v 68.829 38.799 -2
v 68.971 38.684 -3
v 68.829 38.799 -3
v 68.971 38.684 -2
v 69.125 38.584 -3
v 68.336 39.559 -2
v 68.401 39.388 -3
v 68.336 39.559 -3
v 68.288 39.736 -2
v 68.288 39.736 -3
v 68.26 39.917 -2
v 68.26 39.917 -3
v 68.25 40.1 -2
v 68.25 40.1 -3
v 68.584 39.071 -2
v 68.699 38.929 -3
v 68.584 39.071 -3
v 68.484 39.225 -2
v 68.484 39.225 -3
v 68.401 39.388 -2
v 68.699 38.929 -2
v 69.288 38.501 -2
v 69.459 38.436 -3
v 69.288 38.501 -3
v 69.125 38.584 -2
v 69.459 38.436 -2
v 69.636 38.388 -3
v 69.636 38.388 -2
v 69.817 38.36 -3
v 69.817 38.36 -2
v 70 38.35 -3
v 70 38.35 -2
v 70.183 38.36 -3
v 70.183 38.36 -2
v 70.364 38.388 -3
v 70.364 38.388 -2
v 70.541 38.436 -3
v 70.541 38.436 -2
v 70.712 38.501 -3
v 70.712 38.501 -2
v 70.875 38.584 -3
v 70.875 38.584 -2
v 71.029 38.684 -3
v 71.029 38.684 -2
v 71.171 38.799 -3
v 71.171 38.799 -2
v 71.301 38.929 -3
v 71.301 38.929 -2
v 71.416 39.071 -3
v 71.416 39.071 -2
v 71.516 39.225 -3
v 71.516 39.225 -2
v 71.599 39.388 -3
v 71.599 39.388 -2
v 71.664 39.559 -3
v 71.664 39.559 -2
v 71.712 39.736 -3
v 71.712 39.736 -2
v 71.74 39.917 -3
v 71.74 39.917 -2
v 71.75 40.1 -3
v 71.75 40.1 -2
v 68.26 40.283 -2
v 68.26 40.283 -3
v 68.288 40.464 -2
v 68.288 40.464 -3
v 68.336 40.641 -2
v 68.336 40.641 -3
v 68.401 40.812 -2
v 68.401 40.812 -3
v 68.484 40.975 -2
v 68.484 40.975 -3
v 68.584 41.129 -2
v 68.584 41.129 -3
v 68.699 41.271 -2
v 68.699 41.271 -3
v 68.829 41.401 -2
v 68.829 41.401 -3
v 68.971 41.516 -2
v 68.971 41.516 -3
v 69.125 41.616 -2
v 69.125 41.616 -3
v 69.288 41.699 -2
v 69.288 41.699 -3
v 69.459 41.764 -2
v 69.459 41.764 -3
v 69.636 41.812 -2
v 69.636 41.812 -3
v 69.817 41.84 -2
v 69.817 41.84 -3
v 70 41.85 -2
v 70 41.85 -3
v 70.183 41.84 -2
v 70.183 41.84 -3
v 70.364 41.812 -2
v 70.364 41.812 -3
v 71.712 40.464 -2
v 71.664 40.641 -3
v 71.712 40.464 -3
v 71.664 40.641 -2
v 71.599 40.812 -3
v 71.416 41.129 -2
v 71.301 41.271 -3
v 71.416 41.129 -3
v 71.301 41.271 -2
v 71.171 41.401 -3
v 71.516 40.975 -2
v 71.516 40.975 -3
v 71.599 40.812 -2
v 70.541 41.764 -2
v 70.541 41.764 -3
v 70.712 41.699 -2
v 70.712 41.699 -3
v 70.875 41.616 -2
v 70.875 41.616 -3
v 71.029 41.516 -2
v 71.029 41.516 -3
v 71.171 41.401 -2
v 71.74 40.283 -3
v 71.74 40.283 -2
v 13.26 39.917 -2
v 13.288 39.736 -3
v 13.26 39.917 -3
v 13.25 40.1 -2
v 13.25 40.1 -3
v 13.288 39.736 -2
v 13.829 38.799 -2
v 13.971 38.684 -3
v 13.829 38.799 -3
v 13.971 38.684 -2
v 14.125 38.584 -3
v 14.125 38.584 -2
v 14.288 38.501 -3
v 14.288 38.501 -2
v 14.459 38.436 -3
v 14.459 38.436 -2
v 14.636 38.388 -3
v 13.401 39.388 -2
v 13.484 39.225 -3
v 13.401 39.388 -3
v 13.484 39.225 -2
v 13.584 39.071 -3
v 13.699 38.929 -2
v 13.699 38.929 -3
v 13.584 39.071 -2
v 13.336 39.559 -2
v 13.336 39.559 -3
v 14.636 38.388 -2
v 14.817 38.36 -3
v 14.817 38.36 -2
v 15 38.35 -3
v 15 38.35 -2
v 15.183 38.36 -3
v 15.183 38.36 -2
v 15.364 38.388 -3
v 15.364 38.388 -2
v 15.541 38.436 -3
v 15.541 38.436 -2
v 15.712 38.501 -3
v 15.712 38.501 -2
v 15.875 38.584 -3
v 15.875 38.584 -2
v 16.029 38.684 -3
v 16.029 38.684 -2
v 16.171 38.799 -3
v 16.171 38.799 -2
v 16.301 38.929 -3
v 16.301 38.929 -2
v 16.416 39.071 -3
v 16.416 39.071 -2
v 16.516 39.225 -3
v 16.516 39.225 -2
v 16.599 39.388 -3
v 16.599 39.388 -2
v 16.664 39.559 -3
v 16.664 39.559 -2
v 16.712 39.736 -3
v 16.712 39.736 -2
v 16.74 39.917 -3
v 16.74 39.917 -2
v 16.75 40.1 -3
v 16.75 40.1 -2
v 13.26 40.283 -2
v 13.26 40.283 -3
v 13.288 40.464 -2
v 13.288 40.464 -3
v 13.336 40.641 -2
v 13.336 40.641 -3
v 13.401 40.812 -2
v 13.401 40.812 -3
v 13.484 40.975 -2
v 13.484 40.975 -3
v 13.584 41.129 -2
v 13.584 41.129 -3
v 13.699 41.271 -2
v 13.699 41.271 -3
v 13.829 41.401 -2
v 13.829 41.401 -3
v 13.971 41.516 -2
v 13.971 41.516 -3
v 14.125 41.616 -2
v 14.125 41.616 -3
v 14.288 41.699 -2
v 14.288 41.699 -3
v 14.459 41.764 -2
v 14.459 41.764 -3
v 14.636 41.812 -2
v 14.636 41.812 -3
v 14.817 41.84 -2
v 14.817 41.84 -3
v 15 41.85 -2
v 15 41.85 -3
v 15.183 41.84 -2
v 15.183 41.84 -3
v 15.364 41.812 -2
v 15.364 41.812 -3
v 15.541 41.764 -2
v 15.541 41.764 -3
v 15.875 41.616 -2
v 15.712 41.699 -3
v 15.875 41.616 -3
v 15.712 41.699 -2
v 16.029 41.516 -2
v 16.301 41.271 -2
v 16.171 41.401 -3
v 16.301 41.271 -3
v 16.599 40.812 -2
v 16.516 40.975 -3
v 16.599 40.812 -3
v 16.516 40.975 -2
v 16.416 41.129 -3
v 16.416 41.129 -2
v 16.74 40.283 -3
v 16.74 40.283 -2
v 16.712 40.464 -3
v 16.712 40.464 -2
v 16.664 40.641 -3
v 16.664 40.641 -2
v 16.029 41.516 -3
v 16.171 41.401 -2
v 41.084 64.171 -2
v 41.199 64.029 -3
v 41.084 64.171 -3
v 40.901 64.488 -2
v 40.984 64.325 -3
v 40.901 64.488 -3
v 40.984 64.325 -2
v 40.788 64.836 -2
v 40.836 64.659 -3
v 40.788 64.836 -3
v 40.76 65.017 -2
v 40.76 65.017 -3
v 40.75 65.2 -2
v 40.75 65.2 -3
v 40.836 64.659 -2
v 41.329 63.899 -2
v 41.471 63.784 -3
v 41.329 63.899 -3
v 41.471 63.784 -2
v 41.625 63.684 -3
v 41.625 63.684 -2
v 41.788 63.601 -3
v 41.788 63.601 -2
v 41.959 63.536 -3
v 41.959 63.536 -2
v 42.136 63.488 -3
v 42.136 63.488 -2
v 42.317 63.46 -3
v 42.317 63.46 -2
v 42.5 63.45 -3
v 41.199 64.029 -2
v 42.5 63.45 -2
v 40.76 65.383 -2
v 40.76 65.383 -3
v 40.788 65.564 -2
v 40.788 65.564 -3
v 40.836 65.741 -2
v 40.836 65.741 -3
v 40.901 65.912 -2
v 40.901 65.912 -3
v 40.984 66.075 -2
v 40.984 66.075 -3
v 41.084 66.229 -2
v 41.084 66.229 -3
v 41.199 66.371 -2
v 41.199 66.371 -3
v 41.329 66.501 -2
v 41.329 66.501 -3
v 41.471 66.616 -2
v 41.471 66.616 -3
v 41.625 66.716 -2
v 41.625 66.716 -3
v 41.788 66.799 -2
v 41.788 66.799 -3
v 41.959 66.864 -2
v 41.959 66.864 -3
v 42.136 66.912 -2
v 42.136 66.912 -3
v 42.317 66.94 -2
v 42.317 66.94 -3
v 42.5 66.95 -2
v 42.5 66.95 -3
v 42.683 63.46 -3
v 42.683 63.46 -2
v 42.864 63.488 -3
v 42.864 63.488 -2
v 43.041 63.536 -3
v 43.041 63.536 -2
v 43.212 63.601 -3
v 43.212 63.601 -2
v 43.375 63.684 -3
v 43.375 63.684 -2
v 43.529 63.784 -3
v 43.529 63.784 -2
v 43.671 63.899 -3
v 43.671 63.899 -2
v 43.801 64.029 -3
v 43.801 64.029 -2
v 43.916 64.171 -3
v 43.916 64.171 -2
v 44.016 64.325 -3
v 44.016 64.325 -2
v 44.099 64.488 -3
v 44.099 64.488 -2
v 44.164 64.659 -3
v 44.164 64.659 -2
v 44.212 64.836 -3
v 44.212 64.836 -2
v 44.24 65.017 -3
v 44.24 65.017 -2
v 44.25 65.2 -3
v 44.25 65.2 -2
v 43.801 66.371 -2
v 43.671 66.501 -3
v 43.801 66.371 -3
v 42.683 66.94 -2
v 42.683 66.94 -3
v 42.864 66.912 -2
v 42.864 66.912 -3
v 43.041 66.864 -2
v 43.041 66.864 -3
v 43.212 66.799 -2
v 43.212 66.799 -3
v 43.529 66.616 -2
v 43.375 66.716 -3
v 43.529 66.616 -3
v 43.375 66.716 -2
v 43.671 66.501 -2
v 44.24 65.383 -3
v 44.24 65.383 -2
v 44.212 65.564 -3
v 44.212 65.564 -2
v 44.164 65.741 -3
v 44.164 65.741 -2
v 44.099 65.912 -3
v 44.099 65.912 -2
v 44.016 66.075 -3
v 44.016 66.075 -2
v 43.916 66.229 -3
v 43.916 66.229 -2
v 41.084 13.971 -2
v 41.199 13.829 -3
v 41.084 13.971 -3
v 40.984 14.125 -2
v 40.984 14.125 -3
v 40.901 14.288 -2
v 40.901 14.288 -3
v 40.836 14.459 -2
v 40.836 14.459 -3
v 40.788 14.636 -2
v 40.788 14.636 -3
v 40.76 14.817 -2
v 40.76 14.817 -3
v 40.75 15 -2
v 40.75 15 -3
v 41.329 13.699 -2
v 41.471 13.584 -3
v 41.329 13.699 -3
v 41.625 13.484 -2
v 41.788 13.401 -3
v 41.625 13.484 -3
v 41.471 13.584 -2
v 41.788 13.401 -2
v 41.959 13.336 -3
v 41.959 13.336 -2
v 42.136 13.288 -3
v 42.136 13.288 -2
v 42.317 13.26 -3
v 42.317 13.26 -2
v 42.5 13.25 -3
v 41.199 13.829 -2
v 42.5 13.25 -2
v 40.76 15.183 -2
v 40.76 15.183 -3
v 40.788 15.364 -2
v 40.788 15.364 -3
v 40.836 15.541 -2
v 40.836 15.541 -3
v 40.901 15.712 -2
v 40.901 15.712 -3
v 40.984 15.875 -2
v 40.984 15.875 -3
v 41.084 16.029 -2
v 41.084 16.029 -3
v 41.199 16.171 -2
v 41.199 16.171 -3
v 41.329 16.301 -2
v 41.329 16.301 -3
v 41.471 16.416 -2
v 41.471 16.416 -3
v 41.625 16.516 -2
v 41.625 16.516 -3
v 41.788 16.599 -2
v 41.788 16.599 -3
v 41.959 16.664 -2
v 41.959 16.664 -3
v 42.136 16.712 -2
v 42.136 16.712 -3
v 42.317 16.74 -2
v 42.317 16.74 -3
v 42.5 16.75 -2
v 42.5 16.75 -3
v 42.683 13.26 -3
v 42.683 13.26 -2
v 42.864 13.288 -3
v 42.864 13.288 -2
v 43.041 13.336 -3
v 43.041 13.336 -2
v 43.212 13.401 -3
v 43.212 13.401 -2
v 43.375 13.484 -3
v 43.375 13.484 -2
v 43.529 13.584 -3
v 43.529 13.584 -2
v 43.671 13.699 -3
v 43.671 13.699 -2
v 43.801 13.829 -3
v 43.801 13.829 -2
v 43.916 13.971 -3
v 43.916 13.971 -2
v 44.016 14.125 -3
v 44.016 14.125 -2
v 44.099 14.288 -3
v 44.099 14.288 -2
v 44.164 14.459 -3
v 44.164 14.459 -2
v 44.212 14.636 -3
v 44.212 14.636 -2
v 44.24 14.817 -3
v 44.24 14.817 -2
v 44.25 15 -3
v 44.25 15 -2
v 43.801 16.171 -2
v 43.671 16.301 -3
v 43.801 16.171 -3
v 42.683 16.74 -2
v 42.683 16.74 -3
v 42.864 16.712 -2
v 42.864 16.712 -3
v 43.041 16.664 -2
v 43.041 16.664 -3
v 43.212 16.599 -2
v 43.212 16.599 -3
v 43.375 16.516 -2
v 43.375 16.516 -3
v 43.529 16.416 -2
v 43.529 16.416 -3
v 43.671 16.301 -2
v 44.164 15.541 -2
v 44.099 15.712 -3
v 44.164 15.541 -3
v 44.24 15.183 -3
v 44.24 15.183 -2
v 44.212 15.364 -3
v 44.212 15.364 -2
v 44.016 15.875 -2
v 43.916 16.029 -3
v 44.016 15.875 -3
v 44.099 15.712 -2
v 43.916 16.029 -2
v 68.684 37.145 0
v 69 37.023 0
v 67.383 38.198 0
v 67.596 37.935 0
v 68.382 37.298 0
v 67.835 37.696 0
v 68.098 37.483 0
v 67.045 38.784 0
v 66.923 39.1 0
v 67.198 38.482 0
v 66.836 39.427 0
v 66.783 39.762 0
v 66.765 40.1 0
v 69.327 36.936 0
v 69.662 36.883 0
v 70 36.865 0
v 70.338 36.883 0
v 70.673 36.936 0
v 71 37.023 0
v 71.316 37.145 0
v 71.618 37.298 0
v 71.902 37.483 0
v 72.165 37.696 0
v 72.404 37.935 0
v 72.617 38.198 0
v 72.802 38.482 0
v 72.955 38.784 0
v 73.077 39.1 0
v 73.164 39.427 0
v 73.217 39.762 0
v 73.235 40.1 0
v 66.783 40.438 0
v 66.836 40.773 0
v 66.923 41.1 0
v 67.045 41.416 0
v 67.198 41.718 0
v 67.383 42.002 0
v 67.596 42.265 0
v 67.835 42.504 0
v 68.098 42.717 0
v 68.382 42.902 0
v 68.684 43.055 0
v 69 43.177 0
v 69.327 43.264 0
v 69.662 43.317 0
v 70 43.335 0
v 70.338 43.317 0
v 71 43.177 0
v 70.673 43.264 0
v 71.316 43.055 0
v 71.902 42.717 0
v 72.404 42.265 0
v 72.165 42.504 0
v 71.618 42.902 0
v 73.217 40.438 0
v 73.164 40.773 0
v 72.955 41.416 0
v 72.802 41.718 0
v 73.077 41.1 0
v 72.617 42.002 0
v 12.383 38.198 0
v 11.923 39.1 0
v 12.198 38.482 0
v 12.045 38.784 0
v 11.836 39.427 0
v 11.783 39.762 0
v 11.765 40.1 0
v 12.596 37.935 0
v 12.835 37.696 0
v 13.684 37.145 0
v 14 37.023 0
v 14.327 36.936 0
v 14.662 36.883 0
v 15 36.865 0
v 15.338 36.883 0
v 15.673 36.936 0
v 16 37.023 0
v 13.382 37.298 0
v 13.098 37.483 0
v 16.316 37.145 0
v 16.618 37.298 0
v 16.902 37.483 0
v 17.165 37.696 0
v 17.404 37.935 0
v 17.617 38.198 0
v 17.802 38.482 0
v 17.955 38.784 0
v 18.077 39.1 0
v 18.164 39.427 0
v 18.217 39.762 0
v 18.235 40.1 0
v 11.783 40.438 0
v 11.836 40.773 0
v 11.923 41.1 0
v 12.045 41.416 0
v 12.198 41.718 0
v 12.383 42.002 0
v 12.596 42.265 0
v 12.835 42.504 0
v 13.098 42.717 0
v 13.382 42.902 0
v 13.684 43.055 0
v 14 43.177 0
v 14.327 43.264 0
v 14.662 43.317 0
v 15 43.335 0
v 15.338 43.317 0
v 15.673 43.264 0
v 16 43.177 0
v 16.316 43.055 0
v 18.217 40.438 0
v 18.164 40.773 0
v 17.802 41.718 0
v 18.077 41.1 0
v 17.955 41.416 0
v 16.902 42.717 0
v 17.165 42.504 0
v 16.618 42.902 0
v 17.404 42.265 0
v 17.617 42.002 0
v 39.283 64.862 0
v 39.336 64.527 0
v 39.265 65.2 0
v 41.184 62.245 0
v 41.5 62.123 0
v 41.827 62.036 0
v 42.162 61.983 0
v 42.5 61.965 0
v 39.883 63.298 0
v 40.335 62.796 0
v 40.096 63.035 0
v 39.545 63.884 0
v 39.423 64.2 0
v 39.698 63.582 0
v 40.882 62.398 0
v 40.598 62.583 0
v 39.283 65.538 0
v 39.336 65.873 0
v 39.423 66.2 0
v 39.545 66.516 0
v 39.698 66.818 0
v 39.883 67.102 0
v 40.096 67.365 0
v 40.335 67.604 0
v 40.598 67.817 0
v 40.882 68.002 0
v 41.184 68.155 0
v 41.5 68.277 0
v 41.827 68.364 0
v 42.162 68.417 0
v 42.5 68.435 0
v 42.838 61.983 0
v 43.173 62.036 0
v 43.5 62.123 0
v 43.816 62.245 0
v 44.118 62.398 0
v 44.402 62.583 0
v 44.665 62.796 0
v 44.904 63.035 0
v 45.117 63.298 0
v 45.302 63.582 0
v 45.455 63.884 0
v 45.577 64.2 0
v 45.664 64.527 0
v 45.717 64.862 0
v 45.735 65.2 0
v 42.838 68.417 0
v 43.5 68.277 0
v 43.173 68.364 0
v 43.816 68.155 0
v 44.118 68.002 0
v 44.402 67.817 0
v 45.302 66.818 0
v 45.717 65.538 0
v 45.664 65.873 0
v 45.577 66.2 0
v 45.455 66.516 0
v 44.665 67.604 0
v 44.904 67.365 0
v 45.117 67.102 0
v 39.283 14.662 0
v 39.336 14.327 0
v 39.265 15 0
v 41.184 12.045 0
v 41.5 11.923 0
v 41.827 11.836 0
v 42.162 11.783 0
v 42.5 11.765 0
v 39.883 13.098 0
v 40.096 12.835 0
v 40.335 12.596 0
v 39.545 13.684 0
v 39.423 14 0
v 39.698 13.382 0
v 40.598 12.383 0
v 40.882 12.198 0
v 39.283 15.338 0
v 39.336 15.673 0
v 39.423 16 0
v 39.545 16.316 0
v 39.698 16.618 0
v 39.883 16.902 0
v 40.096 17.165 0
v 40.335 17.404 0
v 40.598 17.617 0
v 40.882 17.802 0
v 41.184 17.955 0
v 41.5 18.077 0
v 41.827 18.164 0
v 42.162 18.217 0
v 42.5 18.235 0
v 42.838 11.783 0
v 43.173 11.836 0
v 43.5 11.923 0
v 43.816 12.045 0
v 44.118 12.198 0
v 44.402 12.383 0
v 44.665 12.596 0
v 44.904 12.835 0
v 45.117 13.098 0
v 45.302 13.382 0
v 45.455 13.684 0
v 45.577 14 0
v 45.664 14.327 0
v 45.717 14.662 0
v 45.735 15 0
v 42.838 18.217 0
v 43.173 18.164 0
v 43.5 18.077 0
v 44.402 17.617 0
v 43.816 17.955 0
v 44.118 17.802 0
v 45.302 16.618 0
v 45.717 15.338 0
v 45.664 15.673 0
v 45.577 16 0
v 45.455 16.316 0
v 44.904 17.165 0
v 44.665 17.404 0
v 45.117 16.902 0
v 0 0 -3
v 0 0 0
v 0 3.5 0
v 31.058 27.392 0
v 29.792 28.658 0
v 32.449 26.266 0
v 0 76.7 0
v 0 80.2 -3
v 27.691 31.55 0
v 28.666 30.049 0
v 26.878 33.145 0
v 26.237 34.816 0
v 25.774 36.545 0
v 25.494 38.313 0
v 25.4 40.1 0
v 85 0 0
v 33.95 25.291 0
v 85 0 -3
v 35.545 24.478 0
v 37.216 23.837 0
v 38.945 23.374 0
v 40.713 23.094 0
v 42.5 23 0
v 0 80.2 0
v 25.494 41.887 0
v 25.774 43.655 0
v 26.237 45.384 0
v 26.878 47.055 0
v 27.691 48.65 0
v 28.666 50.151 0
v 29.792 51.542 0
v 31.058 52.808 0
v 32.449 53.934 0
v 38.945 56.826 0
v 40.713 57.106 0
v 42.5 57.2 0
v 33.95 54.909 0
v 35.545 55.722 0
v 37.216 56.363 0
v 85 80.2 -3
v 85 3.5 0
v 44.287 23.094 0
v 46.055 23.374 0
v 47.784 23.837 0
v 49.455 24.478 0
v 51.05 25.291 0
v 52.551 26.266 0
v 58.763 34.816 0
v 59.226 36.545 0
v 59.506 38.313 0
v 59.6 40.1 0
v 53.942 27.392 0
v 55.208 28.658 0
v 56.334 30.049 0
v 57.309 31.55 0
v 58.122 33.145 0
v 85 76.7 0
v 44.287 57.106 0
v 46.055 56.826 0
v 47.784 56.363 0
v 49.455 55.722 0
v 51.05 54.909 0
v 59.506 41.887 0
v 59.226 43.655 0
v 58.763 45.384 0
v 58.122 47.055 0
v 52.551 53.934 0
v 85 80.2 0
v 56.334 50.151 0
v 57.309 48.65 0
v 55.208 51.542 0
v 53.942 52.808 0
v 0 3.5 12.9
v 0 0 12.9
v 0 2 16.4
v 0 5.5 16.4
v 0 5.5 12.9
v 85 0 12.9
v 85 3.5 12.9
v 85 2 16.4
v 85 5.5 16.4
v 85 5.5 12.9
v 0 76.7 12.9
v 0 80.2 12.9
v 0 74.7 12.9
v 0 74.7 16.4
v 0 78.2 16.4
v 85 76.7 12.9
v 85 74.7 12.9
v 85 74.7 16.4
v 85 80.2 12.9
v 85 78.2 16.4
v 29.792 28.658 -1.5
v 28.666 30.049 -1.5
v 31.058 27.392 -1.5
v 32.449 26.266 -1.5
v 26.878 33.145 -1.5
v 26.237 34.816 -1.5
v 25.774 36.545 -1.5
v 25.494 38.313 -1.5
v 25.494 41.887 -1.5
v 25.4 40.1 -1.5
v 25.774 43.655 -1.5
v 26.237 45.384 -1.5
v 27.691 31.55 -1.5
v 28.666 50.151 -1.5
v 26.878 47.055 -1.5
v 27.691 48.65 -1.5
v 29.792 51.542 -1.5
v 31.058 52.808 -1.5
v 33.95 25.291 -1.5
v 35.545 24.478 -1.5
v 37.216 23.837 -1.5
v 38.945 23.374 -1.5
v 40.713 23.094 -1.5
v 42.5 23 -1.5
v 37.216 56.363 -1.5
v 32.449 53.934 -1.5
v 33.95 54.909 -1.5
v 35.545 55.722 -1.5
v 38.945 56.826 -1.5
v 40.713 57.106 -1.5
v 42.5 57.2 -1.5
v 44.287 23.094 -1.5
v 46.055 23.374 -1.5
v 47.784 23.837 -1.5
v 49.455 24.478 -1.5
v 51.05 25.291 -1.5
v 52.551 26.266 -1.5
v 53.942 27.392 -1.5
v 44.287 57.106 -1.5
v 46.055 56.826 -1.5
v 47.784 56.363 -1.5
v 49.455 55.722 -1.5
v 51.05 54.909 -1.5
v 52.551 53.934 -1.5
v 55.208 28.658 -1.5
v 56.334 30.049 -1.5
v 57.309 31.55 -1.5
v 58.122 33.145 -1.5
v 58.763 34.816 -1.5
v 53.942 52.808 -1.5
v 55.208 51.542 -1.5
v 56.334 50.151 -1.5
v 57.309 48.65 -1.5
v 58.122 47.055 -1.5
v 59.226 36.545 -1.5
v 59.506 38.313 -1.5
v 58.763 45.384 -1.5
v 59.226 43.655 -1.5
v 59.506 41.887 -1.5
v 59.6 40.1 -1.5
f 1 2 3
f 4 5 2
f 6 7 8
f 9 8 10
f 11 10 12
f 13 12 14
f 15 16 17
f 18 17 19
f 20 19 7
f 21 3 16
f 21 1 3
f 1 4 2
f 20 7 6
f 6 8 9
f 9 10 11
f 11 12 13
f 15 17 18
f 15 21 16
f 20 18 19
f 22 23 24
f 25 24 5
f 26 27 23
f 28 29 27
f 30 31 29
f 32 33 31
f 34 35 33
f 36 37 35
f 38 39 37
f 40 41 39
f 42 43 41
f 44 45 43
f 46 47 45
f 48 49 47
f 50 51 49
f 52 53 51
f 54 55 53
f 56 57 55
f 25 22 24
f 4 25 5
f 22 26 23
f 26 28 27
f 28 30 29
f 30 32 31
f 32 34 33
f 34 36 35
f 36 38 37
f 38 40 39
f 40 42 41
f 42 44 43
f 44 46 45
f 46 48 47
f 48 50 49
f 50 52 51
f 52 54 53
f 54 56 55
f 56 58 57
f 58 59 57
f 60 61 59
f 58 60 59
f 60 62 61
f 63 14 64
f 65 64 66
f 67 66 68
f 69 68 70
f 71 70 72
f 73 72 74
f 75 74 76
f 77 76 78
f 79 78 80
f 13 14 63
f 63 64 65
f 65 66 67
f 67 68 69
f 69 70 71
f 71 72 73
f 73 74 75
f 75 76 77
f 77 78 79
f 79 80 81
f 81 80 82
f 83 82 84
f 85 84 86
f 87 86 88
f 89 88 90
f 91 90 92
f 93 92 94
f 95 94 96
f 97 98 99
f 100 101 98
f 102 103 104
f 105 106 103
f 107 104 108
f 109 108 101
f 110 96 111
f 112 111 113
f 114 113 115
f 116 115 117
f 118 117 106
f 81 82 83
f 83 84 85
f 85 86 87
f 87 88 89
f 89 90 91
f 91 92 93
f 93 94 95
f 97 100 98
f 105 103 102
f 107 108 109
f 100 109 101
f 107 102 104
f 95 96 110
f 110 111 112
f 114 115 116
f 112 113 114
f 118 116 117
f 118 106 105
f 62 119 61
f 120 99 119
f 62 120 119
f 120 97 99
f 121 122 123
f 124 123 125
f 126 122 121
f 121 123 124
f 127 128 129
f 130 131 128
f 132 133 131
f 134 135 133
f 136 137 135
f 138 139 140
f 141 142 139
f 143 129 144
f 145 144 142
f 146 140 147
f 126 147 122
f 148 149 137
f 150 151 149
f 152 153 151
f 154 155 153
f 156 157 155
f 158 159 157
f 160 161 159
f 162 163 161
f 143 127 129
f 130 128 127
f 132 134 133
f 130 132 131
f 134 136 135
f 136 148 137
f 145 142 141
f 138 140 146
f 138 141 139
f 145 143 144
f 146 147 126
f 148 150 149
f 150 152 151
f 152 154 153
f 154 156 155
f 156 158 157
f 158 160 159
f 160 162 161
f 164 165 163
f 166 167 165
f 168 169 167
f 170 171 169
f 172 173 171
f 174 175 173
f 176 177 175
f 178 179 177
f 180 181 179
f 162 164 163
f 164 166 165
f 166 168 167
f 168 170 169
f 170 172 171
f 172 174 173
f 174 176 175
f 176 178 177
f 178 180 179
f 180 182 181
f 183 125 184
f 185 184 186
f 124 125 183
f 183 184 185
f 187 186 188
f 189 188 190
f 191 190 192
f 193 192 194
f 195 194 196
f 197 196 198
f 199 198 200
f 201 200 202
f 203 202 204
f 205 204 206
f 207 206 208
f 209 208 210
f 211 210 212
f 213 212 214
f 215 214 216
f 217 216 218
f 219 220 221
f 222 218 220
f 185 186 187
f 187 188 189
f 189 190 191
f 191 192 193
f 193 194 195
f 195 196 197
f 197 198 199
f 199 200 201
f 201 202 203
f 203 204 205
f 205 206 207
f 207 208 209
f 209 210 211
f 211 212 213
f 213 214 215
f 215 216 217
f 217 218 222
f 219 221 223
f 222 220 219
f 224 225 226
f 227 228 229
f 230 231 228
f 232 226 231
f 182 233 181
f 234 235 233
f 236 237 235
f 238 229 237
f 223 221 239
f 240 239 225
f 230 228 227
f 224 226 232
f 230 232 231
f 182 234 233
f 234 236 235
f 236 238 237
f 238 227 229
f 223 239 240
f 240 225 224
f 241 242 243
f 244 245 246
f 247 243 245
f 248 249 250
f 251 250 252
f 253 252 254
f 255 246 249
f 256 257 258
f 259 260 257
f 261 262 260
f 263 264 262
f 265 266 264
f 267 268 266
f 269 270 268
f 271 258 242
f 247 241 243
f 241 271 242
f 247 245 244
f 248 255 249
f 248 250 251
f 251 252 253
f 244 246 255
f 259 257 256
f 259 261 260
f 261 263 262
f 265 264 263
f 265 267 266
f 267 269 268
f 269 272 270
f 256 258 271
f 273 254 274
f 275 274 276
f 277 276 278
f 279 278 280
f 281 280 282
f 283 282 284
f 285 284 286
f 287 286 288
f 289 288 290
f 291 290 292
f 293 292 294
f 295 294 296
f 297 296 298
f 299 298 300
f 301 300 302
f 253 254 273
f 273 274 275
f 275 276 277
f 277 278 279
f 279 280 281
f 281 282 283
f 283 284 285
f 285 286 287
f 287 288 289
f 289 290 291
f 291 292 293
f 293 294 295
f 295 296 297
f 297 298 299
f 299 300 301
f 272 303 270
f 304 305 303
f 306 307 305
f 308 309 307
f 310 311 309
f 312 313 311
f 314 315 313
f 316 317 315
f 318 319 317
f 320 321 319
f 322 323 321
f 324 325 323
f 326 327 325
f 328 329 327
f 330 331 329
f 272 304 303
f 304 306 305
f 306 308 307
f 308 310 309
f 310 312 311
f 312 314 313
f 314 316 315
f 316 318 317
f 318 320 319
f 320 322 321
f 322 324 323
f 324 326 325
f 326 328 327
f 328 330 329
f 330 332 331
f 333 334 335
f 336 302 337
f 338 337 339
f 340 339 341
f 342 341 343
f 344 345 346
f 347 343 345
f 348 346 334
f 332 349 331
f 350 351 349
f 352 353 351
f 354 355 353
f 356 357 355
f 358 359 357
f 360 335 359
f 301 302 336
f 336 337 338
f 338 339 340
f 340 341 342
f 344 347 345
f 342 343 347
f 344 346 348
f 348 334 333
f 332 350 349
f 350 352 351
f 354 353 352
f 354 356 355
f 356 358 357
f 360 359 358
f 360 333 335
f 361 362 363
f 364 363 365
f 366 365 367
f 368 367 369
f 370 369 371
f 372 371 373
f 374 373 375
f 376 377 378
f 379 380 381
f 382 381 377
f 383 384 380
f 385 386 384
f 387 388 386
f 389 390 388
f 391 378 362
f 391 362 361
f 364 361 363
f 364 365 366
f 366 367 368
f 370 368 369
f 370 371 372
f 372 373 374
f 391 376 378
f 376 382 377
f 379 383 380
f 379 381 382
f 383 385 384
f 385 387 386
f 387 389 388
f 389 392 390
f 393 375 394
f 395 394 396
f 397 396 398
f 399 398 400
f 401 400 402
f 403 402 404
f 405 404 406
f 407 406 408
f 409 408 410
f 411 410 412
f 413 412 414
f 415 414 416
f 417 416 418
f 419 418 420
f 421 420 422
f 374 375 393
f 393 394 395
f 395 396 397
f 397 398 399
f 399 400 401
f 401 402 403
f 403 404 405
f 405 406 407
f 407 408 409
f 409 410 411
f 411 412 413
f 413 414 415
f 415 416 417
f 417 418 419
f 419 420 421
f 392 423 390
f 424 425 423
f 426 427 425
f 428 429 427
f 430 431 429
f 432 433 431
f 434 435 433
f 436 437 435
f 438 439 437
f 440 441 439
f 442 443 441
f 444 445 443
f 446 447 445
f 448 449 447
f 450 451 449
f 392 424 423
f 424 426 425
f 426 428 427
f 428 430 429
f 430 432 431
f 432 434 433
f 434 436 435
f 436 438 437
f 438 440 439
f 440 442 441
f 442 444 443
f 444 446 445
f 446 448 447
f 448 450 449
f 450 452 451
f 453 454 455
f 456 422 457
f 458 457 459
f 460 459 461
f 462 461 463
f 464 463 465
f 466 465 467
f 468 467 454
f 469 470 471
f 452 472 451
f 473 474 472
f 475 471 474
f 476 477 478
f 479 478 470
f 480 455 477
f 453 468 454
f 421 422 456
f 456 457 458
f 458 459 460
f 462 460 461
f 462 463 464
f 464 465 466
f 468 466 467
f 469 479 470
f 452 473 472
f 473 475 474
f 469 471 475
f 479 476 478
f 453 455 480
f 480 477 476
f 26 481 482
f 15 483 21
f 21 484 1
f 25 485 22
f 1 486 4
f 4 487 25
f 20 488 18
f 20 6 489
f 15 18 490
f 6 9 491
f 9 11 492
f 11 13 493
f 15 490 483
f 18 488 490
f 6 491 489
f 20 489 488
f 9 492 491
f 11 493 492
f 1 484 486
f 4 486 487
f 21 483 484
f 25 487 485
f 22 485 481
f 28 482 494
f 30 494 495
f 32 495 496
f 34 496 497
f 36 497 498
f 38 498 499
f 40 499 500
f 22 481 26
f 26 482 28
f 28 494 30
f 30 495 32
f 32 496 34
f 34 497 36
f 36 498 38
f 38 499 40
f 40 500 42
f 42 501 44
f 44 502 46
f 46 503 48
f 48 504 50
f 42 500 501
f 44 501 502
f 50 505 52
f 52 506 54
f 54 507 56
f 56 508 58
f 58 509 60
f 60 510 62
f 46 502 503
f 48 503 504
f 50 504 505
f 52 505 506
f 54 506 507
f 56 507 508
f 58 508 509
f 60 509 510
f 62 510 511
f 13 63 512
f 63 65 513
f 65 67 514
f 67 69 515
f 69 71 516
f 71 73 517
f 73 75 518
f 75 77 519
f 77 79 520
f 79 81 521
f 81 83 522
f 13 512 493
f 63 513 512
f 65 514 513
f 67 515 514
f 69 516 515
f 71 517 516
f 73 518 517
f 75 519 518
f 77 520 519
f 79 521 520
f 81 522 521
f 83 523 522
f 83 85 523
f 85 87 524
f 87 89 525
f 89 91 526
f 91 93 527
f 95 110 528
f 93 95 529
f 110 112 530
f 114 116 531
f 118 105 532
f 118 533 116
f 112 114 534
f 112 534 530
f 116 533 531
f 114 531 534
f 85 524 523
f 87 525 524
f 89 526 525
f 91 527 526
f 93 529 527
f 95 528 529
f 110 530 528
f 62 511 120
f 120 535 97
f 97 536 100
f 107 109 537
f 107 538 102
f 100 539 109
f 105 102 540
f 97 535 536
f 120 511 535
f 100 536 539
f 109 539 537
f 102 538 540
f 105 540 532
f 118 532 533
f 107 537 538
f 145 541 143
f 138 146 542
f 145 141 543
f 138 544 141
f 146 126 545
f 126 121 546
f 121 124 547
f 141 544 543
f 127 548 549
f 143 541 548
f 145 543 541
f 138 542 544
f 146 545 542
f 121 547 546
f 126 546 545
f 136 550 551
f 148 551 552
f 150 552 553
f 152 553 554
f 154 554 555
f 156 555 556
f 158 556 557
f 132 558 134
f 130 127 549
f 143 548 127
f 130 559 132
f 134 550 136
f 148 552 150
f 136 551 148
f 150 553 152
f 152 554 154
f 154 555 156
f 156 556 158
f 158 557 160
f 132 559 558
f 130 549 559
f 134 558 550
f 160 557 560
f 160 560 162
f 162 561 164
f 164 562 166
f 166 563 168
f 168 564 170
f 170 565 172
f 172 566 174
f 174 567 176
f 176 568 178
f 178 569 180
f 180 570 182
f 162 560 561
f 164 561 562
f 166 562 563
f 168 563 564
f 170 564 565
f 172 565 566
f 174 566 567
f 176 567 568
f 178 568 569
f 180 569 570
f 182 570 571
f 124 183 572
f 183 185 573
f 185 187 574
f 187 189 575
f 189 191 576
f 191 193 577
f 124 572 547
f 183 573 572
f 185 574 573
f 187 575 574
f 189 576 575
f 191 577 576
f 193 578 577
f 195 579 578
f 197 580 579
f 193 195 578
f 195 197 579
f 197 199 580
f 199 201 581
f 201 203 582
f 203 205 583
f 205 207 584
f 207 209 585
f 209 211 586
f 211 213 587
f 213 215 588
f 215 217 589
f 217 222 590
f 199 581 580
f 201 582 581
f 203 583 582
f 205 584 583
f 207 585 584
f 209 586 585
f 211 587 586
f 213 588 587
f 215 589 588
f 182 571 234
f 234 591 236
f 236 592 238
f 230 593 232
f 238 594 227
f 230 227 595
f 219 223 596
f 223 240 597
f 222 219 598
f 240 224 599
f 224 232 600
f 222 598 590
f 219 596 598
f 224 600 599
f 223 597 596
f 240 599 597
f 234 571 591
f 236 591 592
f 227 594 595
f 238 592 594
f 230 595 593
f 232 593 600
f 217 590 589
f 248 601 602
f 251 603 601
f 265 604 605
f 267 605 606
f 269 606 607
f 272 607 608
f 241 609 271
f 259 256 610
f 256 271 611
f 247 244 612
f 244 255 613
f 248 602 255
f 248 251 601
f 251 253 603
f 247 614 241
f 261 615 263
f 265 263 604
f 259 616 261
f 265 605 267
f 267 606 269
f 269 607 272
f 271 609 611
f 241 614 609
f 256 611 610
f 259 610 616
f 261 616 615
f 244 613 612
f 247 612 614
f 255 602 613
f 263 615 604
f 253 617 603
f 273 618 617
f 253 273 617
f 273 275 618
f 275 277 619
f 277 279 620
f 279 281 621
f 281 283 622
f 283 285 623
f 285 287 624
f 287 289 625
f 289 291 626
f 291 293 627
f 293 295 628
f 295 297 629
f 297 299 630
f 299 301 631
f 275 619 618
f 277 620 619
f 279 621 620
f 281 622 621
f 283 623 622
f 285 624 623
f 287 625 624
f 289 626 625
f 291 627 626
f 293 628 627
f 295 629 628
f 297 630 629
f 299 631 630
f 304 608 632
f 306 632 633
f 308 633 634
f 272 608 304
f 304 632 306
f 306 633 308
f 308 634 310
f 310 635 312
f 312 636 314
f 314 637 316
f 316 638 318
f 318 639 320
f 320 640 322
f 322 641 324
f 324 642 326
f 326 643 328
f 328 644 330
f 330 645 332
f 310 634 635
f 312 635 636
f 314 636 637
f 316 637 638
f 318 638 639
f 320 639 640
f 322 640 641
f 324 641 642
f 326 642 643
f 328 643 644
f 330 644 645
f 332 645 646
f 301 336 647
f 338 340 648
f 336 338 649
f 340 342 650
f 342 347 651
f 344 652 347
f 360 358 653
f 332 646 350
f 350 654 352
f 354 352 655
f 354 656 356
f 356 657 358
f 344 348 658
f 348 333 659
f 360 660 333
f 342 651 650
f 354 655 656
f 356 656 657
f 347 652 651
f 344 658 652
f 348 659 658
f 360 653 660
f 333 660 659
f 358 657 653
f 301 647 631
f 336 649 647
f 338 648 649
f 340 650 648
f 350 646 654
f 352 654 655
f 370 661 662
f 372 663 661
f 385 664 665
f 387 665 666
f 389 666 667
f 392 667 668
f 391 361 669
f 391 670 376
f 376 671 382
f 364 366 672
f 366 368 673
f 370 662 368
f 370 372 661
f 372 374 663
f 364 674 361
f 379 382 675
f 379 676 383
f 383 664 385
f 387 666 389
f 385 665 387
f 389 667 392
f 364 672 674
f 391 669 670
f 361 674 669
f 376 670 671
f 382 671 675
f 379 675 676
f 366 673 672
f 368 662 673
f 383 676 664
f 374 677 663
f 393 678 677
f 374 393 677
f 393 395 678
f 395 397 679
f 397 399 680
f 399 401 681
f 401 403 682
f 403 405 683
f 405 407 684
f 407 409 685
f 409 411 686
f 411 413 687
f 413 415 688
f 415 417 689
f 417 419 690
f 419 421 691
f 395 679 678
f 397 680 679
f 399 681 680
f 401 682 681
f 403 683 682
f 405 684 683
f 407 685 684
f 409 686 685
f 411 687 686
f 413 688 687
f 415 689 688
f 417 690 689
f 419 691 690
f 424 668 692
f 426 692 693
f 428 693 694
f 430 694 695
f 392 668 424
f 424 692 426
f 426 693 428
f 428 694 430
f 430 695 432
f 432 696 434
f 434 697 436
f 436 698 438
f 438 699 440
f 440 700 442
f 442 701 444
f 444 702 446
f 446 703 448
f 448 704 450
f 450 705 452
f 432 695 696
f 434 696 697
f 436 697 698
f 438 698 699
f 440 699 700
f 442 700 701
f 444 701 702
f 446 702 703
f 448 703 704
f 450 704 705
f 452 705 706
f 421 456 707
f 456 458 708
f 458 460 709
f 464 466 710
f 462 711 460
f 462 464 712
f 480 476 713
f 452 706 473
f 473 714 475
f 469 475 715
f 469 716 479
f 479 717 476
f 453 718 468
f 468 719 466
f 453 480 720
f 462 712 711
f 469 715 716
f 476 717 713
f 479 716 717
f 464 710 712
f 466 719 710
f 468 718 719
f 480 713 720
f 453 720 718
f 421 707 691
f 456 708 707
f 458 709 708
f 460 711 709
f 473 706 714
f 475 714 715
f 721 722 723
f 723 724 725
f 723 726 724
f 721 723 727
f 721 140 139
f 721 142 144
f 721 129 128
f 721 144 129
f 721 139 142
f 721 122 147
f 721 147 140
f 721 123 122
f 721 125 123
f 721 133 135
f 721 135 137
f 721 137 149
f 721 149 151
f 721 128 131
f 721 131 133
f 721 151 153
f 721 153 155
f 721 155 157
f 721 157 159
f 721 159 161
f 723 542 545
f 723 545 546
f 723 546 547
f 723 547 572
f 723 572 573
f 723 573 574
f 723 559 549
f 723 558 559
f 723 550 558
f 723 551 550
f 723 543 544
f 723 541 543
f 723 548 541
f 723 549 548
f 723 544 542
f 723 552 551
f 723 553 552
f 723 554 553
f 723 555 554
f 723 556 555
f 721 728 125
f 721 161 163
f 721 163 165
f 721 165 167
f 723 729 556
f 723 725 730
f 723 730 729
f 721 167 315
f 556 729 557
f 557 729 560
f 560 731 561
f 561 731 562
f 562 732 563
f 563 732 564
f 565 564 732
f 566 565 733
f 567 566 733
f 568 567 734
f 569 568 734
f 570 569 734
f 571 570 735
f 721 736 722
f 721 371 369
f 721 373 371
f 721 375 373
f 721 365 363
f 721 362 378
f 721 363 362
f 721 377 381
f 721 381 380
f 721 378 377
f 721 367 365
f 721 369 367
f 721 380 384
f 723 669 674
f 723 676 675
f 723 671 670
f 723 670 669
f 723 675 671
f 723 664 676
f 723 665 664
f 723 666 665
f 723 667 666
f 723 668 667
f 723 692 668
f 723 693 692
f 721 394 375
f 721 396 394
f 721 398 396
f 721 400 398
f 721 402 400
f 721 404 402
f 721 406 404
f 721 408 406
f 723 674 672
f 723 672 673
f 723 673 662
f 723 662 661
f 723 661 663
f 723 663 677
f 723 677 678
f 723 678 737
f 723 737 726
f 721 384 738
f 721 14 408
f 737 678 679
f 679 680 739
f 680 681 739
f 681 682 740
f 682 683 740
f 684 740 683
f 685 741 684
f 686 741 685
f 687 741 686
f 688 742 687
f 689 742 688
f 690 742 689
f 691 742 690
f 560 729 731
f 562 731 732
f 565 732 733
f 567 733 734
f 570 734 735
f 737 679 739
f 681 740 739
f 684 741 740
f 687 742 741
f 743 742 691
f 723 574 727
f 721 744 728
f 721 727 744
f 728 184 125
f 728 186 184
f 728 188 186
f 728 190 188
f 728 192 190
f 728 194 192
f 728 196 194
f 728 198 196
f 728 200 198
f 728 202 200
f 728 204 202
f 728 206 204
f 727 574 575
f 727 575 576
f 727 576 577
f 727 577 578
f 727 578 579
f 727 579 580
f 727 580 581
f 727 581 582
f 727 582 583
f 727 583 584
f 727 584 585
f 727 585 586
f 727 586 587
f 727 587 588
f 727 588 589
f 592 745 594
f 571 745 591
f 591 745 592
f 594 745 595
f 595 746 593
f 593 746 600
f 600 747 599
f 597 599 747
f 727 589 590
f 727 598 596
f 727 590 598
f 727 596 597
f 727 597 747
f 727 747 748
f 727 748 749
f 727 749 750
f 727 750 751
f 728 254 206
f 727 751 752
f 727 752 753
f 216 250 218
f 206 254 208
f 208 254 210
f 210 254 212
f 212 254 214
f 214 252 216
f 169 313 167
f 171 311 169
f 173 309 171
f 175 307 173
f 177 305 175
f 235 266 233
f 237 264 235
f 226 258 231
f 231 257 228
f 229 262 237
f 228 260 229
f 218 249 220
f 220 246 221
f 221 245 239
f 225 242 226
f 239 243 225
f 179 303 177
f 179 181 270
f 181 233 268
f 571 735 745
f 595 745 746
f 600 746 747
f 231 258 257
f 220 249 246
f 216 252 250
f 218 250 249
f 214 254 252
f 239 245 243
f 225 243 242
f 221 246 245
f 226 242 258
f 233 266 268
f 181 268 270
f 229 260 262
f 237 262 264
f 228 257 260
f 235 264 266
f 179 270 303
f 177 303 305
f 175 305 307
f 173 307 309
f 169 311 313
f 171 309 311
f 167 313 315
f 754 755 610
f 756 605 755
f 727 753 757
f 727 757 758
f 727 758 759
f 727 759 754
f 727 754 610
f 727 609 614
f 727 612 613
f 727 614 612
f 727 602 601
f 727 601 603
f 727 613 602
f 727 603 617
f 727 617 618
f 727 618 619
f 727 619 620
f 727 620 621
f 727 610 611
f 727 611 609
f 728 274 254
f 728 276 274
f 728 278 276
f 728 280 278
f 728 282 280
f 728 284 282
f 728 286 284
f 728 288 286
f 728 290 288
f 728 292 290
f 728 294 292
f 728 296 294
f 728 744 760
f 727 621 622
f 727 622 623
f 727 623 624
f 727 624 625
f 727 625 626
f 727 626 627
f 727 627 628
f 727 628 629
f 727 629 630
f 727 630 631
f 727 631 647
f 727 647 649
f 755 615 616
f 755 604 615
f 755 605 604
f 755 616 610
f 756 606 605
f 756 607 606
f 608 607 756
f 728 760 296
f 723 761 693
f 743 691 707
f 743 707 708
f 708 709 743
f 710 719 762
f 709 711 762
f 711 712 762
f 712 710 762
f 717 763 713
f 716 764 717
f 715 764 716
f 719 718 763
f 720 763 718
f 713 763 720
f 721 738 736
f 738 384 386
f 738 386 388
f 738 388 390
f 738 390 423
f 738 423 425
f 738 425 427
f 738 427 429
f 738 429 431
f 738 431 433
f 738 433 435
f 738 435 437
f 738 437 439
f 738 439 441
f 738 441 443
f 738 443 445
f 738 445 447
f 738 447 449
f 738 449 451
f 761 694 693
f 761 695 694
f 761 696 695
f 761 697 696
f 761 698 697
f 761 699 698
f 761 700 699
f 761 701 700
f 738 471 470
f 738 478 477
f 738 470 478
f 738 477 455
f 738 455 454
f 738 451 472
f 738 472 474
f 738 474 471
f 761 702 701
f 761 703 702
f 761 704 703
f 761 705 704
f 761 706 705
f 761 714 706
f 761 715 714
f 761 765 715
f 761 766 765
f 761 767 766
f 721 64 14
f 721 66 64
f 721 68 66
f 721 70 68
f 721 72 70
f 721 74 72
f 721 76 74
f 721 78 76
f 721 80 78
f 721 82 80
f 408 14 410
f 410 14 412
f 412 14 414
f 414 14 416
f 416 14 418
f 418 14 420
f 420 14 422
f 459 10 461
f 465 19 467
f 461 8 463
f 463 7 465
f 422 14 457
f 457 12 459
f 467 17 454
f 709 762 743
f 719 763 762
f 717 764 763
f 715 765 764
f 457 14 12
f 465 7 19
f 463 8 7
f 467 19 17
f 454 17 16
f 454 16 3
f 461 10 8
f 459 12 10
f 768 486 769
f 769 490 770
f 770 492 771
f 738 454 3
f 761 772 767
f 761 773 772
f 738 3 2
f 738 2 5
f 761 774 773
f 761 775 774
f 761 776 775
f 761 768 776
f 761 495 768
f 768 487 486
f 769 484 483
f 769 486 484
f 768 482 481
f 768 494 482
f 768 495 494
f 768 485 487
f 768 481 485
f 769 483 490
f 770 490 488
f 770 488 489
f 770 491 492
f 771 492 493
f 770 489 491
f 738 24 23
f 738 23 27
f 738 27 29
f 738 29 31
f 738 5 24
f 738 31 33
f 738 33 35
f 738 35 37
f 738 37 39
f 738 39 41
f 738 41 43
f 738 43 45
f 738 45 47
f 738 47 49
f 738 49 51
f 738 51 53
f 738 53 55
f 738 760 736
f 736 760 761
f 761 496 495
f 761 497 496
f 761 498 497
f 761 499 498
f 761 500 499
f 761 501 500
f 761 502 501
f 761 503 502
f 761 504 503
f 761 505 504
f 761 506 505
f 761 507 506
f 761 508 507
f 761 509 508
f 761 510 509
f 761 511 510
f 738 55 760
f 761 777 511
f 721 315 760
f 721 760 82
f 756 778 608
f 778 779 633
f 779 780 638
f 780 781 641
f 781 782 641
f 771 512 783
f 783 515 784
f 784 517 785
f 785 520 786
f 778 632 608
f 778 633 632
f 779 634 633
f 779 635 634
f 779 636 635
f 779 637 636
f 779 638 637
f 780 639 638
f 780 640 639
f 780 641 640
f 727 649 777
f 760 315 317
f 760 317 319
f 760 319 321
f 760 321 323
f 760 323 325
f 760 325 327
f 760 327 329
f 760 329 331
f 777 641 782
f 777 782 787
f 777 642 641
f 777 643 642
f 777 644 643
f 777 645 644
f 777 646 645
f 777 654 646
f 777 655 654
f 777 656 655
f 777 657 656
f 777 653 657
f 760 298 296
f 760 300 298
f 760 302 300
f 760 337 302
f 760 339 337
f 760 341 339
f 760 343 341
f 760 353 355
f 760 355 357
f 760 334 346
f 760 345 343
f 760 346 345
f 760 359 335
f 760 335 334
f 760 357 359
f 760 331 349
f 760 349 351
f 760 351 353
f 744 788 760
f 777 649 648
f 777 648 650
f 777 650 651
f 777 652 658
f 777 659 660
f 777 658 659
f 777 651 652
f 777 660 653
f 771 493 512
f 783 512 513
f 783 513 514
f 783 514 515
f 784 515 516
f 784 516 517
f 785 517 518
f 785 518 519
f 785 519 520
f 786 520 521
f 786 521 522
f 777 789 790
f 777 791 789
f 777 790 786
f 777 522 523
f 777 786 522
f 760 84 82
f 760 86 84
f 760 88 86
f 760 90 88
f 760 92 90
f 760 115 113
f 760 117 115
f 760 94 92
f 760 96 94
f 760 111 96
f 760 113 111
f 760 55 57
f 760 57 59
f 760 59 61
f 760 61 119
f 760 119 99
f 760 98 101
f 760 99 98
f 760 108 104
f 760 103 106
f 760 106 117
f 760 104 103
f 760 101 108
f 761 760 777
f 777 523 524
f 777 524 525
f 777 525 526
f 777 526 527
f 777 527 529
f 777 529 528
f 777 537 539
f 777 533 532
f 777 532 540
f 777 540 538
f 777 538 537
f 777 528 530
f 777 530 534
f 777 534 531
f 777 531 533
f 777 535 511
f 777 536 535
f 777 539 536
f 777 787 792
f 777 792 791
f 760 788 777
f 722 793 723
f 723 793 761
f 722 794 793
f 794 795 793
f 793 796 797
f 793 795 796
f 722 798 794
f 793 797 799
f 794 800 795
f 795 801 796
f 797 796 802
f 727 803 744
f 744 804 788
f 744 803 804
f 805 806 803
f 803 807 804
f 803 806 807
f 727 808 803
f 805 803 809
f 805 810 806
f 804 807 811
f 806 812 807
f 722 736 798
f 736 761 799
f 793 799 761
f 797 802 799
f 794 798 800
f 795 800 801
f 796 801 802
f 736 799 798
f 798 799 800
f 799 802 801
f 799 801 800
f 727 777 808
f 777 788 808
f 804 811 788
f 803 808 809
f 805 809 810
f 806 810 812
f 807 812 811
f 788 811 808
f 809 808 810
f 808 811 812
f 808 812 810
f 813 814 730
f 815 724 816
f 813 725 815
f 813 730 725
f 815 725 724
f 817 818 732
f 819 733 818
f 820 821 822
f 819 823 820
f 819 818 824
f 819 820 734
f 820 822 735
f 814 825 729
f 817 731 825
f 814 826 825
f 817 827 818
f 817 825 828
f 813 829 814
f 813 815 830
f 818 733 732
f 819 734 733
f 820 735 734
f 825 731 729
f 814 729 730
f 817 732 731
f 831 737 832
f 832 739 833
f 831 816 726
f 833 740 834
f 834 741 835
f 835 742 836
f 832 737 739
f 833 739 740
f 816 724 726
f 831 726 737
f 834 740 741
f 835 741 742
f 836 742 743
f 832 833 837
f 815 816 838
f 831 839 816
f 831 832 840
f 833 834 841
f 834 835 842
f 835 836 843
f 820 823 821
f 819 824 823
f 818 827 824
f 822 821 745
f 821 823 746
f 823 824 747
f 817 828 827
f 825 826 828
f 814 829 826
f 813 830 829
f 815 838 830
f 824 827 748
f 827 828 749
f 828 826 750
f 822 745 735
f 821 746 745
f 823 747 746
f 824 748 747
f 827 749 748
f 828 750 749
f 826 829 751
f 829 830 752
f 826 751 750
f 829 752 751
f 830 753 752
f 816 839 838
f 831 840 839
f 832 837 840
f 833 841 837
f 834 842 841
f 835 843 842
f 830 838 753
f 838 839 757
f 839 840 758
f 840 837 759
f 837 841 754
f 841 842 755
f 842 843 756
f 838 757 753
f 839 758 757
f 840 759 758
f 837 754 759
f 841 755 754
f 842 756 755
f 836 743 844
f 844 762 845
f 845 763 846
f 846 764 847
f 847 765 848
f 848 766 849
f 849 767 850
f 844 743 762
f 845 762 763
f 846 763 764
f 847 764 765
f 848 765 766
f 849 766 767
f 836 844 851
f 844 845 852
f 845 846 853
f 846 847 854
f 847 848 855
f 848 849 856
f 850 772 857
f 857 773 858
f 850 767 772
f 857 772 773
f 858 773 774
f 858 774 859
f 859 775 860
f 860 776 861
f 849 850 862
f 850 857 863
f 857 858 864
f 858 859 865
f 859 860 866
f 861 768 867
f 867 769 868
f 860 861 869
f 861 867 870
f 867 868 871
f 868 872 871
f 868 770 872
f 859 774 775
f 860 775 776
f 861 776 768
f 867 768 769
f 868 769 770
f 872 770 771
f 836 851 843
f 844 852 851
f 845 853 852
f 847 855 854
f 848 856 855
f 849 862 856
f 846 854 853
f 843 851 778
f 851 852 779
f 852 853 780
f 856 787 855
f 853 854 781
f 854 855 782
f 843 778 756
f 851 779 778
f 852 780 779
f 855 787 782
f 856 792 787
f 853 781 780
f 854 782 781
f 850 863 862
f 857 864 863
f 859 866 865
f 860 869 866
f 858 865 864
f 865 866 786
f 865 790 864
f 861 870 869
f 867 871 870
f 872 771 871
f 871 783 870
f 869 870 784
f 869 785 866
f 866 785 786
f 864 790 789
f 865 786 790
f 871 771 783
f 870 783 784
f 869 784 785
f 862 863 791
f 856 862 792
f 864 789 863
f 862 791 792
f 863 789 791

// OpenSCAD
//====================================================================
// OSRAM Nightlux Stair Wall Mount
// File: OSRAM-Nightlux-Stair-Mount.scad
// Version: v0.02
// Date: 2026-06-19
// Description: Parametric slide-in wall mount for OSRAM Nightlux Stair.
//              Features full-length top and bottom tracking lips with
//              soft retention notches on the edges to securely lock the
//              light when slid in from the side.
//====================================================================

/* [Light Dimensions] */
// Width of the light body (side-to-side)
light_width = 84.0; // [50:120]
// Height of the light body (top-to-bottom)
light_height = 73.2; // [50:150]
// Depth of the light body (front-to-back at the edges)
light_depth = 12.4; // [15:50]

/* [Mount Options] */
// Thickness of the backplate
backplate_thickness = 3.0; // [2:6]
// Clearance around the light width (for sliding tolerance)
clearance_width = 0.5; // [0:3]
// Clearance around the light height (for sliding tolerance)
clearance_height = 0.0; // [0:3]
// Clearance around the light depth (for sliding tolerance)
clearance_depth = 0.5; // [0:2]

/* [Slide Rails & Lips] */
// Thickness of the top and bottom walls/lips
wall_thickness = 3.5; // [2:6]
// How far the front lips overlap the light to hold it
lip_overlap = 2.0; // [2:15]

/* [Magnetic Plate Recess] */
// Enable circular recess in the backplate to accommodate the original magnetic mount
enable_recess = true;
// Diameter of the magnetic plate recess
recess_diameter = 34.2; // [20:60]
// Depth of the recess (must be less than backplate_thickness)
recess_depth = 1.5; // [0.5:4]

/* [Screw Holes] */
// Diameter of the screw shaft (3mm screw clearance hole is typically 3.5mm)
screw_shaft_dia = 3.5; // [2.5:5]
// Diameter of the countersink head
screw_head_dia = 6.5; // [4:10]
// Depth of the countersink recess
screw_head_depth = 2.0; // [1:4]
// Distance of vertical screws from the top and bottom edges of the mount
screw_y_offset = 15.0; // [10:40]
// Distance of horizontal screws from the left and right edges of the mount
screw_x_offset = 15.0; // [10:40]

/* [Visualization] */
// Show a translucent placeholder of the OSRAM light to verify fit
show_light = false;

/* [Rendering Quality] */
// Circle resolution
$fn = 60; // [20:120]

// Constant for small overlaps to prevent non-manifold geometries
epsilon = 0.02;

// --- Derived Dimensions ---
// Internal tracking dimensions
track_w = light_width + 2 * clearance_width;
track_h = light_height + 2 * clearance_height;
track_d = light_depth + clearance_depth;

// Outer mount dimensions
total_h = track_h + 2 * wall_thickness;
total_w = track_w;

// Outer edge chamfer for a cleaner print and look
chamfer = min(wall_thickness, 2.0);

// Visualizer alignment coordinates
light_x = clearance_width;
light_y = wall_thickness + clearance_height;


module countersink_screw_hole() {
    // Shaft hole (clearance) going all the way through
    translate([0, 0, -backplate_thickness - 1])
        cylinder(d = screw_shaft_dia, h = backplate_thickness + 2, $fn = $fn);

    // Countersink cone starting at Z = 0 and tapering down in -Z
    translate([0, 0, -screw_head_depth])
        cylinder(d1 = screw_shaft_dia, d2 = screw_head_dia, h = screw_head_depth + epsilon, $fn = $fn);
}

module rail_profile() {
    // 2D Profile of the rails.
    // X in 2D represents Z in 3D (-Z to correctly map the rotation later).
    // Y in 2D represents Y in 3D.
    polygon([
        // Bottom Rail
        [0, 0],
        [-track_d, 0],
        [-(track_d + wall_thickness), chamfer],
        [-(track_d + wall_thickness), wall_thickness + lip_overlap],
        [-track_d, wall_thickness + lip_overlap],
        [-track_d, wall_thickness],
        [0, wall_thickness],

        // Top Rail
        [0, total_h - wall_thickness],
        [-track_d, total_h - wall_thickness],
        [-track_d, total_h - wall_thickness - lip_overlap],
        [-(track_d + wall_thickness), total_h - wall_thickness - lip_overlap],
        [-(track_d + wall_thickness), total_h - chamfer],
        [-track_d, total_h],
        [0, total_h]
    ]);
}

module wall_mount() {
    difference() {
        union() {
            // 1. Solid Backplate
            translate([0, 0, -backplate_thickness])
                cube([total_w, total_h, backplate_thickness]);

            // 2. Extruded Top and Bottom Slide Rails
            translate([0, 0, 0])
                rotate([0, 90, 0])
                    linear_extrude(height = total_w)
                        rail_profile();
        }

        // --- SUBTRACTIONS ---

        // A. Screw Holes (Countersunk)
        // Bottom Vertical Screw
        translate([total_w / 2, screw_y_offset, 0])
            countersink_screw_hole();

        // Top Vertical Screw
        translate([total_w / 2, total_h - screw_y_offset, 0])
            countersink_screw_hole();

        // Left Horizontal Screw
        translate([screw_x_offset, total_h / 2, 0])
            countersink_screw_hole();

        // Right Horizontal Screw
        translate([total_w - screw_x_offset, total_h / 2, 0])
            countersink_screw_hole();

        // B. Magnetic Plate Recess (if enabled)
        if (enable_recess) {
            // Recess is subtracted from the front face of the backplate (Z = 0) down in -Z
            translate([total_w / 2, total_h / 2, -recess_depth])
                cylinder(d = recess_diameter, h = recess_depth + epsilon, $fn = $fn);
        }
    }
}

// Render the assembly
wall_mount();

// Render translucent placeholder of the OSRAM Nightlux Stair light
if (show_light) {
    translate([light_x, light_y, 0]) {
        color([0.9, 0.9, 0.95, 0.4]) {
            // Main body
            cube([light_width, light_height, light_depth]);

            // Motion sensor dome (simplified)
            translate([light_width / 2, light_height * 0.35, light_depth]) {
                color([0.95, 0.95, 0.95, 0.5])
                    sphere(r = 11, $fn = 40);
                color([0.9, 0.9, 0.9, 0.6])
                    cylinder(r = 14, h = 1.5, $fn = 40);
            }

            // LED diffuse window (top half)
            translate([4, light_height * 0.55, light_depth - 1])
                color([1.0, 1.0, 0.9, 0.5])
                cube([light_width - 8, light_height * 0.4, 2]);
        }
    }
}
